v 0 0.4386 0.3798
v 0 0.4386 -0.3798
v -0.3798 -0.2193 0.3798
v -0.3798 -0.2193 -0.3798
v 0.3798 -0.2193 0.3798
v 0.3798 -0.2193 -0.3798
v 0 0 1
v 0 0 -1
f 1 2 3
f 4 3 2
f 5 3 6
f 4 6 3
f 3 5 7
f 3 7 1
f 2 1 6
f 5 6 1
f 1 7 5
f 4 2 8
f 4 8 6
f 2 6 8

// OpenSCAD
polyhedron( points = [[-0.379795897143206, -0.219275263467773, 0.37979589711406], [1.55237664371488e-11, 0.438550526871881, 0.37979589711406], [0.379795897095496, -0.219275263467773, 0.37979589711406], [-0.379795897109103, -0.219275263448083, -0.379795897124642], [5.68334466941267e-11, 0.438550526904053, -0.37979589707085], [0.379795897095496, -0.219275263448083, -0.379795897158748], [-4.16556086029426e-12, -1.7431980393345e-11, 1.0], [-6.87505179825142e-12, 7.32108600552219e-11, -0.999999999987941]], faces = [[0, 1, 4, 3], [0, 3, 5, 2], [0, 2, 6], [0, 6, 1], [1, 2, 5, 4], [1, 6, 2], [3, 4, 7], [3, 7, 5], [4, 5, 7]]);
